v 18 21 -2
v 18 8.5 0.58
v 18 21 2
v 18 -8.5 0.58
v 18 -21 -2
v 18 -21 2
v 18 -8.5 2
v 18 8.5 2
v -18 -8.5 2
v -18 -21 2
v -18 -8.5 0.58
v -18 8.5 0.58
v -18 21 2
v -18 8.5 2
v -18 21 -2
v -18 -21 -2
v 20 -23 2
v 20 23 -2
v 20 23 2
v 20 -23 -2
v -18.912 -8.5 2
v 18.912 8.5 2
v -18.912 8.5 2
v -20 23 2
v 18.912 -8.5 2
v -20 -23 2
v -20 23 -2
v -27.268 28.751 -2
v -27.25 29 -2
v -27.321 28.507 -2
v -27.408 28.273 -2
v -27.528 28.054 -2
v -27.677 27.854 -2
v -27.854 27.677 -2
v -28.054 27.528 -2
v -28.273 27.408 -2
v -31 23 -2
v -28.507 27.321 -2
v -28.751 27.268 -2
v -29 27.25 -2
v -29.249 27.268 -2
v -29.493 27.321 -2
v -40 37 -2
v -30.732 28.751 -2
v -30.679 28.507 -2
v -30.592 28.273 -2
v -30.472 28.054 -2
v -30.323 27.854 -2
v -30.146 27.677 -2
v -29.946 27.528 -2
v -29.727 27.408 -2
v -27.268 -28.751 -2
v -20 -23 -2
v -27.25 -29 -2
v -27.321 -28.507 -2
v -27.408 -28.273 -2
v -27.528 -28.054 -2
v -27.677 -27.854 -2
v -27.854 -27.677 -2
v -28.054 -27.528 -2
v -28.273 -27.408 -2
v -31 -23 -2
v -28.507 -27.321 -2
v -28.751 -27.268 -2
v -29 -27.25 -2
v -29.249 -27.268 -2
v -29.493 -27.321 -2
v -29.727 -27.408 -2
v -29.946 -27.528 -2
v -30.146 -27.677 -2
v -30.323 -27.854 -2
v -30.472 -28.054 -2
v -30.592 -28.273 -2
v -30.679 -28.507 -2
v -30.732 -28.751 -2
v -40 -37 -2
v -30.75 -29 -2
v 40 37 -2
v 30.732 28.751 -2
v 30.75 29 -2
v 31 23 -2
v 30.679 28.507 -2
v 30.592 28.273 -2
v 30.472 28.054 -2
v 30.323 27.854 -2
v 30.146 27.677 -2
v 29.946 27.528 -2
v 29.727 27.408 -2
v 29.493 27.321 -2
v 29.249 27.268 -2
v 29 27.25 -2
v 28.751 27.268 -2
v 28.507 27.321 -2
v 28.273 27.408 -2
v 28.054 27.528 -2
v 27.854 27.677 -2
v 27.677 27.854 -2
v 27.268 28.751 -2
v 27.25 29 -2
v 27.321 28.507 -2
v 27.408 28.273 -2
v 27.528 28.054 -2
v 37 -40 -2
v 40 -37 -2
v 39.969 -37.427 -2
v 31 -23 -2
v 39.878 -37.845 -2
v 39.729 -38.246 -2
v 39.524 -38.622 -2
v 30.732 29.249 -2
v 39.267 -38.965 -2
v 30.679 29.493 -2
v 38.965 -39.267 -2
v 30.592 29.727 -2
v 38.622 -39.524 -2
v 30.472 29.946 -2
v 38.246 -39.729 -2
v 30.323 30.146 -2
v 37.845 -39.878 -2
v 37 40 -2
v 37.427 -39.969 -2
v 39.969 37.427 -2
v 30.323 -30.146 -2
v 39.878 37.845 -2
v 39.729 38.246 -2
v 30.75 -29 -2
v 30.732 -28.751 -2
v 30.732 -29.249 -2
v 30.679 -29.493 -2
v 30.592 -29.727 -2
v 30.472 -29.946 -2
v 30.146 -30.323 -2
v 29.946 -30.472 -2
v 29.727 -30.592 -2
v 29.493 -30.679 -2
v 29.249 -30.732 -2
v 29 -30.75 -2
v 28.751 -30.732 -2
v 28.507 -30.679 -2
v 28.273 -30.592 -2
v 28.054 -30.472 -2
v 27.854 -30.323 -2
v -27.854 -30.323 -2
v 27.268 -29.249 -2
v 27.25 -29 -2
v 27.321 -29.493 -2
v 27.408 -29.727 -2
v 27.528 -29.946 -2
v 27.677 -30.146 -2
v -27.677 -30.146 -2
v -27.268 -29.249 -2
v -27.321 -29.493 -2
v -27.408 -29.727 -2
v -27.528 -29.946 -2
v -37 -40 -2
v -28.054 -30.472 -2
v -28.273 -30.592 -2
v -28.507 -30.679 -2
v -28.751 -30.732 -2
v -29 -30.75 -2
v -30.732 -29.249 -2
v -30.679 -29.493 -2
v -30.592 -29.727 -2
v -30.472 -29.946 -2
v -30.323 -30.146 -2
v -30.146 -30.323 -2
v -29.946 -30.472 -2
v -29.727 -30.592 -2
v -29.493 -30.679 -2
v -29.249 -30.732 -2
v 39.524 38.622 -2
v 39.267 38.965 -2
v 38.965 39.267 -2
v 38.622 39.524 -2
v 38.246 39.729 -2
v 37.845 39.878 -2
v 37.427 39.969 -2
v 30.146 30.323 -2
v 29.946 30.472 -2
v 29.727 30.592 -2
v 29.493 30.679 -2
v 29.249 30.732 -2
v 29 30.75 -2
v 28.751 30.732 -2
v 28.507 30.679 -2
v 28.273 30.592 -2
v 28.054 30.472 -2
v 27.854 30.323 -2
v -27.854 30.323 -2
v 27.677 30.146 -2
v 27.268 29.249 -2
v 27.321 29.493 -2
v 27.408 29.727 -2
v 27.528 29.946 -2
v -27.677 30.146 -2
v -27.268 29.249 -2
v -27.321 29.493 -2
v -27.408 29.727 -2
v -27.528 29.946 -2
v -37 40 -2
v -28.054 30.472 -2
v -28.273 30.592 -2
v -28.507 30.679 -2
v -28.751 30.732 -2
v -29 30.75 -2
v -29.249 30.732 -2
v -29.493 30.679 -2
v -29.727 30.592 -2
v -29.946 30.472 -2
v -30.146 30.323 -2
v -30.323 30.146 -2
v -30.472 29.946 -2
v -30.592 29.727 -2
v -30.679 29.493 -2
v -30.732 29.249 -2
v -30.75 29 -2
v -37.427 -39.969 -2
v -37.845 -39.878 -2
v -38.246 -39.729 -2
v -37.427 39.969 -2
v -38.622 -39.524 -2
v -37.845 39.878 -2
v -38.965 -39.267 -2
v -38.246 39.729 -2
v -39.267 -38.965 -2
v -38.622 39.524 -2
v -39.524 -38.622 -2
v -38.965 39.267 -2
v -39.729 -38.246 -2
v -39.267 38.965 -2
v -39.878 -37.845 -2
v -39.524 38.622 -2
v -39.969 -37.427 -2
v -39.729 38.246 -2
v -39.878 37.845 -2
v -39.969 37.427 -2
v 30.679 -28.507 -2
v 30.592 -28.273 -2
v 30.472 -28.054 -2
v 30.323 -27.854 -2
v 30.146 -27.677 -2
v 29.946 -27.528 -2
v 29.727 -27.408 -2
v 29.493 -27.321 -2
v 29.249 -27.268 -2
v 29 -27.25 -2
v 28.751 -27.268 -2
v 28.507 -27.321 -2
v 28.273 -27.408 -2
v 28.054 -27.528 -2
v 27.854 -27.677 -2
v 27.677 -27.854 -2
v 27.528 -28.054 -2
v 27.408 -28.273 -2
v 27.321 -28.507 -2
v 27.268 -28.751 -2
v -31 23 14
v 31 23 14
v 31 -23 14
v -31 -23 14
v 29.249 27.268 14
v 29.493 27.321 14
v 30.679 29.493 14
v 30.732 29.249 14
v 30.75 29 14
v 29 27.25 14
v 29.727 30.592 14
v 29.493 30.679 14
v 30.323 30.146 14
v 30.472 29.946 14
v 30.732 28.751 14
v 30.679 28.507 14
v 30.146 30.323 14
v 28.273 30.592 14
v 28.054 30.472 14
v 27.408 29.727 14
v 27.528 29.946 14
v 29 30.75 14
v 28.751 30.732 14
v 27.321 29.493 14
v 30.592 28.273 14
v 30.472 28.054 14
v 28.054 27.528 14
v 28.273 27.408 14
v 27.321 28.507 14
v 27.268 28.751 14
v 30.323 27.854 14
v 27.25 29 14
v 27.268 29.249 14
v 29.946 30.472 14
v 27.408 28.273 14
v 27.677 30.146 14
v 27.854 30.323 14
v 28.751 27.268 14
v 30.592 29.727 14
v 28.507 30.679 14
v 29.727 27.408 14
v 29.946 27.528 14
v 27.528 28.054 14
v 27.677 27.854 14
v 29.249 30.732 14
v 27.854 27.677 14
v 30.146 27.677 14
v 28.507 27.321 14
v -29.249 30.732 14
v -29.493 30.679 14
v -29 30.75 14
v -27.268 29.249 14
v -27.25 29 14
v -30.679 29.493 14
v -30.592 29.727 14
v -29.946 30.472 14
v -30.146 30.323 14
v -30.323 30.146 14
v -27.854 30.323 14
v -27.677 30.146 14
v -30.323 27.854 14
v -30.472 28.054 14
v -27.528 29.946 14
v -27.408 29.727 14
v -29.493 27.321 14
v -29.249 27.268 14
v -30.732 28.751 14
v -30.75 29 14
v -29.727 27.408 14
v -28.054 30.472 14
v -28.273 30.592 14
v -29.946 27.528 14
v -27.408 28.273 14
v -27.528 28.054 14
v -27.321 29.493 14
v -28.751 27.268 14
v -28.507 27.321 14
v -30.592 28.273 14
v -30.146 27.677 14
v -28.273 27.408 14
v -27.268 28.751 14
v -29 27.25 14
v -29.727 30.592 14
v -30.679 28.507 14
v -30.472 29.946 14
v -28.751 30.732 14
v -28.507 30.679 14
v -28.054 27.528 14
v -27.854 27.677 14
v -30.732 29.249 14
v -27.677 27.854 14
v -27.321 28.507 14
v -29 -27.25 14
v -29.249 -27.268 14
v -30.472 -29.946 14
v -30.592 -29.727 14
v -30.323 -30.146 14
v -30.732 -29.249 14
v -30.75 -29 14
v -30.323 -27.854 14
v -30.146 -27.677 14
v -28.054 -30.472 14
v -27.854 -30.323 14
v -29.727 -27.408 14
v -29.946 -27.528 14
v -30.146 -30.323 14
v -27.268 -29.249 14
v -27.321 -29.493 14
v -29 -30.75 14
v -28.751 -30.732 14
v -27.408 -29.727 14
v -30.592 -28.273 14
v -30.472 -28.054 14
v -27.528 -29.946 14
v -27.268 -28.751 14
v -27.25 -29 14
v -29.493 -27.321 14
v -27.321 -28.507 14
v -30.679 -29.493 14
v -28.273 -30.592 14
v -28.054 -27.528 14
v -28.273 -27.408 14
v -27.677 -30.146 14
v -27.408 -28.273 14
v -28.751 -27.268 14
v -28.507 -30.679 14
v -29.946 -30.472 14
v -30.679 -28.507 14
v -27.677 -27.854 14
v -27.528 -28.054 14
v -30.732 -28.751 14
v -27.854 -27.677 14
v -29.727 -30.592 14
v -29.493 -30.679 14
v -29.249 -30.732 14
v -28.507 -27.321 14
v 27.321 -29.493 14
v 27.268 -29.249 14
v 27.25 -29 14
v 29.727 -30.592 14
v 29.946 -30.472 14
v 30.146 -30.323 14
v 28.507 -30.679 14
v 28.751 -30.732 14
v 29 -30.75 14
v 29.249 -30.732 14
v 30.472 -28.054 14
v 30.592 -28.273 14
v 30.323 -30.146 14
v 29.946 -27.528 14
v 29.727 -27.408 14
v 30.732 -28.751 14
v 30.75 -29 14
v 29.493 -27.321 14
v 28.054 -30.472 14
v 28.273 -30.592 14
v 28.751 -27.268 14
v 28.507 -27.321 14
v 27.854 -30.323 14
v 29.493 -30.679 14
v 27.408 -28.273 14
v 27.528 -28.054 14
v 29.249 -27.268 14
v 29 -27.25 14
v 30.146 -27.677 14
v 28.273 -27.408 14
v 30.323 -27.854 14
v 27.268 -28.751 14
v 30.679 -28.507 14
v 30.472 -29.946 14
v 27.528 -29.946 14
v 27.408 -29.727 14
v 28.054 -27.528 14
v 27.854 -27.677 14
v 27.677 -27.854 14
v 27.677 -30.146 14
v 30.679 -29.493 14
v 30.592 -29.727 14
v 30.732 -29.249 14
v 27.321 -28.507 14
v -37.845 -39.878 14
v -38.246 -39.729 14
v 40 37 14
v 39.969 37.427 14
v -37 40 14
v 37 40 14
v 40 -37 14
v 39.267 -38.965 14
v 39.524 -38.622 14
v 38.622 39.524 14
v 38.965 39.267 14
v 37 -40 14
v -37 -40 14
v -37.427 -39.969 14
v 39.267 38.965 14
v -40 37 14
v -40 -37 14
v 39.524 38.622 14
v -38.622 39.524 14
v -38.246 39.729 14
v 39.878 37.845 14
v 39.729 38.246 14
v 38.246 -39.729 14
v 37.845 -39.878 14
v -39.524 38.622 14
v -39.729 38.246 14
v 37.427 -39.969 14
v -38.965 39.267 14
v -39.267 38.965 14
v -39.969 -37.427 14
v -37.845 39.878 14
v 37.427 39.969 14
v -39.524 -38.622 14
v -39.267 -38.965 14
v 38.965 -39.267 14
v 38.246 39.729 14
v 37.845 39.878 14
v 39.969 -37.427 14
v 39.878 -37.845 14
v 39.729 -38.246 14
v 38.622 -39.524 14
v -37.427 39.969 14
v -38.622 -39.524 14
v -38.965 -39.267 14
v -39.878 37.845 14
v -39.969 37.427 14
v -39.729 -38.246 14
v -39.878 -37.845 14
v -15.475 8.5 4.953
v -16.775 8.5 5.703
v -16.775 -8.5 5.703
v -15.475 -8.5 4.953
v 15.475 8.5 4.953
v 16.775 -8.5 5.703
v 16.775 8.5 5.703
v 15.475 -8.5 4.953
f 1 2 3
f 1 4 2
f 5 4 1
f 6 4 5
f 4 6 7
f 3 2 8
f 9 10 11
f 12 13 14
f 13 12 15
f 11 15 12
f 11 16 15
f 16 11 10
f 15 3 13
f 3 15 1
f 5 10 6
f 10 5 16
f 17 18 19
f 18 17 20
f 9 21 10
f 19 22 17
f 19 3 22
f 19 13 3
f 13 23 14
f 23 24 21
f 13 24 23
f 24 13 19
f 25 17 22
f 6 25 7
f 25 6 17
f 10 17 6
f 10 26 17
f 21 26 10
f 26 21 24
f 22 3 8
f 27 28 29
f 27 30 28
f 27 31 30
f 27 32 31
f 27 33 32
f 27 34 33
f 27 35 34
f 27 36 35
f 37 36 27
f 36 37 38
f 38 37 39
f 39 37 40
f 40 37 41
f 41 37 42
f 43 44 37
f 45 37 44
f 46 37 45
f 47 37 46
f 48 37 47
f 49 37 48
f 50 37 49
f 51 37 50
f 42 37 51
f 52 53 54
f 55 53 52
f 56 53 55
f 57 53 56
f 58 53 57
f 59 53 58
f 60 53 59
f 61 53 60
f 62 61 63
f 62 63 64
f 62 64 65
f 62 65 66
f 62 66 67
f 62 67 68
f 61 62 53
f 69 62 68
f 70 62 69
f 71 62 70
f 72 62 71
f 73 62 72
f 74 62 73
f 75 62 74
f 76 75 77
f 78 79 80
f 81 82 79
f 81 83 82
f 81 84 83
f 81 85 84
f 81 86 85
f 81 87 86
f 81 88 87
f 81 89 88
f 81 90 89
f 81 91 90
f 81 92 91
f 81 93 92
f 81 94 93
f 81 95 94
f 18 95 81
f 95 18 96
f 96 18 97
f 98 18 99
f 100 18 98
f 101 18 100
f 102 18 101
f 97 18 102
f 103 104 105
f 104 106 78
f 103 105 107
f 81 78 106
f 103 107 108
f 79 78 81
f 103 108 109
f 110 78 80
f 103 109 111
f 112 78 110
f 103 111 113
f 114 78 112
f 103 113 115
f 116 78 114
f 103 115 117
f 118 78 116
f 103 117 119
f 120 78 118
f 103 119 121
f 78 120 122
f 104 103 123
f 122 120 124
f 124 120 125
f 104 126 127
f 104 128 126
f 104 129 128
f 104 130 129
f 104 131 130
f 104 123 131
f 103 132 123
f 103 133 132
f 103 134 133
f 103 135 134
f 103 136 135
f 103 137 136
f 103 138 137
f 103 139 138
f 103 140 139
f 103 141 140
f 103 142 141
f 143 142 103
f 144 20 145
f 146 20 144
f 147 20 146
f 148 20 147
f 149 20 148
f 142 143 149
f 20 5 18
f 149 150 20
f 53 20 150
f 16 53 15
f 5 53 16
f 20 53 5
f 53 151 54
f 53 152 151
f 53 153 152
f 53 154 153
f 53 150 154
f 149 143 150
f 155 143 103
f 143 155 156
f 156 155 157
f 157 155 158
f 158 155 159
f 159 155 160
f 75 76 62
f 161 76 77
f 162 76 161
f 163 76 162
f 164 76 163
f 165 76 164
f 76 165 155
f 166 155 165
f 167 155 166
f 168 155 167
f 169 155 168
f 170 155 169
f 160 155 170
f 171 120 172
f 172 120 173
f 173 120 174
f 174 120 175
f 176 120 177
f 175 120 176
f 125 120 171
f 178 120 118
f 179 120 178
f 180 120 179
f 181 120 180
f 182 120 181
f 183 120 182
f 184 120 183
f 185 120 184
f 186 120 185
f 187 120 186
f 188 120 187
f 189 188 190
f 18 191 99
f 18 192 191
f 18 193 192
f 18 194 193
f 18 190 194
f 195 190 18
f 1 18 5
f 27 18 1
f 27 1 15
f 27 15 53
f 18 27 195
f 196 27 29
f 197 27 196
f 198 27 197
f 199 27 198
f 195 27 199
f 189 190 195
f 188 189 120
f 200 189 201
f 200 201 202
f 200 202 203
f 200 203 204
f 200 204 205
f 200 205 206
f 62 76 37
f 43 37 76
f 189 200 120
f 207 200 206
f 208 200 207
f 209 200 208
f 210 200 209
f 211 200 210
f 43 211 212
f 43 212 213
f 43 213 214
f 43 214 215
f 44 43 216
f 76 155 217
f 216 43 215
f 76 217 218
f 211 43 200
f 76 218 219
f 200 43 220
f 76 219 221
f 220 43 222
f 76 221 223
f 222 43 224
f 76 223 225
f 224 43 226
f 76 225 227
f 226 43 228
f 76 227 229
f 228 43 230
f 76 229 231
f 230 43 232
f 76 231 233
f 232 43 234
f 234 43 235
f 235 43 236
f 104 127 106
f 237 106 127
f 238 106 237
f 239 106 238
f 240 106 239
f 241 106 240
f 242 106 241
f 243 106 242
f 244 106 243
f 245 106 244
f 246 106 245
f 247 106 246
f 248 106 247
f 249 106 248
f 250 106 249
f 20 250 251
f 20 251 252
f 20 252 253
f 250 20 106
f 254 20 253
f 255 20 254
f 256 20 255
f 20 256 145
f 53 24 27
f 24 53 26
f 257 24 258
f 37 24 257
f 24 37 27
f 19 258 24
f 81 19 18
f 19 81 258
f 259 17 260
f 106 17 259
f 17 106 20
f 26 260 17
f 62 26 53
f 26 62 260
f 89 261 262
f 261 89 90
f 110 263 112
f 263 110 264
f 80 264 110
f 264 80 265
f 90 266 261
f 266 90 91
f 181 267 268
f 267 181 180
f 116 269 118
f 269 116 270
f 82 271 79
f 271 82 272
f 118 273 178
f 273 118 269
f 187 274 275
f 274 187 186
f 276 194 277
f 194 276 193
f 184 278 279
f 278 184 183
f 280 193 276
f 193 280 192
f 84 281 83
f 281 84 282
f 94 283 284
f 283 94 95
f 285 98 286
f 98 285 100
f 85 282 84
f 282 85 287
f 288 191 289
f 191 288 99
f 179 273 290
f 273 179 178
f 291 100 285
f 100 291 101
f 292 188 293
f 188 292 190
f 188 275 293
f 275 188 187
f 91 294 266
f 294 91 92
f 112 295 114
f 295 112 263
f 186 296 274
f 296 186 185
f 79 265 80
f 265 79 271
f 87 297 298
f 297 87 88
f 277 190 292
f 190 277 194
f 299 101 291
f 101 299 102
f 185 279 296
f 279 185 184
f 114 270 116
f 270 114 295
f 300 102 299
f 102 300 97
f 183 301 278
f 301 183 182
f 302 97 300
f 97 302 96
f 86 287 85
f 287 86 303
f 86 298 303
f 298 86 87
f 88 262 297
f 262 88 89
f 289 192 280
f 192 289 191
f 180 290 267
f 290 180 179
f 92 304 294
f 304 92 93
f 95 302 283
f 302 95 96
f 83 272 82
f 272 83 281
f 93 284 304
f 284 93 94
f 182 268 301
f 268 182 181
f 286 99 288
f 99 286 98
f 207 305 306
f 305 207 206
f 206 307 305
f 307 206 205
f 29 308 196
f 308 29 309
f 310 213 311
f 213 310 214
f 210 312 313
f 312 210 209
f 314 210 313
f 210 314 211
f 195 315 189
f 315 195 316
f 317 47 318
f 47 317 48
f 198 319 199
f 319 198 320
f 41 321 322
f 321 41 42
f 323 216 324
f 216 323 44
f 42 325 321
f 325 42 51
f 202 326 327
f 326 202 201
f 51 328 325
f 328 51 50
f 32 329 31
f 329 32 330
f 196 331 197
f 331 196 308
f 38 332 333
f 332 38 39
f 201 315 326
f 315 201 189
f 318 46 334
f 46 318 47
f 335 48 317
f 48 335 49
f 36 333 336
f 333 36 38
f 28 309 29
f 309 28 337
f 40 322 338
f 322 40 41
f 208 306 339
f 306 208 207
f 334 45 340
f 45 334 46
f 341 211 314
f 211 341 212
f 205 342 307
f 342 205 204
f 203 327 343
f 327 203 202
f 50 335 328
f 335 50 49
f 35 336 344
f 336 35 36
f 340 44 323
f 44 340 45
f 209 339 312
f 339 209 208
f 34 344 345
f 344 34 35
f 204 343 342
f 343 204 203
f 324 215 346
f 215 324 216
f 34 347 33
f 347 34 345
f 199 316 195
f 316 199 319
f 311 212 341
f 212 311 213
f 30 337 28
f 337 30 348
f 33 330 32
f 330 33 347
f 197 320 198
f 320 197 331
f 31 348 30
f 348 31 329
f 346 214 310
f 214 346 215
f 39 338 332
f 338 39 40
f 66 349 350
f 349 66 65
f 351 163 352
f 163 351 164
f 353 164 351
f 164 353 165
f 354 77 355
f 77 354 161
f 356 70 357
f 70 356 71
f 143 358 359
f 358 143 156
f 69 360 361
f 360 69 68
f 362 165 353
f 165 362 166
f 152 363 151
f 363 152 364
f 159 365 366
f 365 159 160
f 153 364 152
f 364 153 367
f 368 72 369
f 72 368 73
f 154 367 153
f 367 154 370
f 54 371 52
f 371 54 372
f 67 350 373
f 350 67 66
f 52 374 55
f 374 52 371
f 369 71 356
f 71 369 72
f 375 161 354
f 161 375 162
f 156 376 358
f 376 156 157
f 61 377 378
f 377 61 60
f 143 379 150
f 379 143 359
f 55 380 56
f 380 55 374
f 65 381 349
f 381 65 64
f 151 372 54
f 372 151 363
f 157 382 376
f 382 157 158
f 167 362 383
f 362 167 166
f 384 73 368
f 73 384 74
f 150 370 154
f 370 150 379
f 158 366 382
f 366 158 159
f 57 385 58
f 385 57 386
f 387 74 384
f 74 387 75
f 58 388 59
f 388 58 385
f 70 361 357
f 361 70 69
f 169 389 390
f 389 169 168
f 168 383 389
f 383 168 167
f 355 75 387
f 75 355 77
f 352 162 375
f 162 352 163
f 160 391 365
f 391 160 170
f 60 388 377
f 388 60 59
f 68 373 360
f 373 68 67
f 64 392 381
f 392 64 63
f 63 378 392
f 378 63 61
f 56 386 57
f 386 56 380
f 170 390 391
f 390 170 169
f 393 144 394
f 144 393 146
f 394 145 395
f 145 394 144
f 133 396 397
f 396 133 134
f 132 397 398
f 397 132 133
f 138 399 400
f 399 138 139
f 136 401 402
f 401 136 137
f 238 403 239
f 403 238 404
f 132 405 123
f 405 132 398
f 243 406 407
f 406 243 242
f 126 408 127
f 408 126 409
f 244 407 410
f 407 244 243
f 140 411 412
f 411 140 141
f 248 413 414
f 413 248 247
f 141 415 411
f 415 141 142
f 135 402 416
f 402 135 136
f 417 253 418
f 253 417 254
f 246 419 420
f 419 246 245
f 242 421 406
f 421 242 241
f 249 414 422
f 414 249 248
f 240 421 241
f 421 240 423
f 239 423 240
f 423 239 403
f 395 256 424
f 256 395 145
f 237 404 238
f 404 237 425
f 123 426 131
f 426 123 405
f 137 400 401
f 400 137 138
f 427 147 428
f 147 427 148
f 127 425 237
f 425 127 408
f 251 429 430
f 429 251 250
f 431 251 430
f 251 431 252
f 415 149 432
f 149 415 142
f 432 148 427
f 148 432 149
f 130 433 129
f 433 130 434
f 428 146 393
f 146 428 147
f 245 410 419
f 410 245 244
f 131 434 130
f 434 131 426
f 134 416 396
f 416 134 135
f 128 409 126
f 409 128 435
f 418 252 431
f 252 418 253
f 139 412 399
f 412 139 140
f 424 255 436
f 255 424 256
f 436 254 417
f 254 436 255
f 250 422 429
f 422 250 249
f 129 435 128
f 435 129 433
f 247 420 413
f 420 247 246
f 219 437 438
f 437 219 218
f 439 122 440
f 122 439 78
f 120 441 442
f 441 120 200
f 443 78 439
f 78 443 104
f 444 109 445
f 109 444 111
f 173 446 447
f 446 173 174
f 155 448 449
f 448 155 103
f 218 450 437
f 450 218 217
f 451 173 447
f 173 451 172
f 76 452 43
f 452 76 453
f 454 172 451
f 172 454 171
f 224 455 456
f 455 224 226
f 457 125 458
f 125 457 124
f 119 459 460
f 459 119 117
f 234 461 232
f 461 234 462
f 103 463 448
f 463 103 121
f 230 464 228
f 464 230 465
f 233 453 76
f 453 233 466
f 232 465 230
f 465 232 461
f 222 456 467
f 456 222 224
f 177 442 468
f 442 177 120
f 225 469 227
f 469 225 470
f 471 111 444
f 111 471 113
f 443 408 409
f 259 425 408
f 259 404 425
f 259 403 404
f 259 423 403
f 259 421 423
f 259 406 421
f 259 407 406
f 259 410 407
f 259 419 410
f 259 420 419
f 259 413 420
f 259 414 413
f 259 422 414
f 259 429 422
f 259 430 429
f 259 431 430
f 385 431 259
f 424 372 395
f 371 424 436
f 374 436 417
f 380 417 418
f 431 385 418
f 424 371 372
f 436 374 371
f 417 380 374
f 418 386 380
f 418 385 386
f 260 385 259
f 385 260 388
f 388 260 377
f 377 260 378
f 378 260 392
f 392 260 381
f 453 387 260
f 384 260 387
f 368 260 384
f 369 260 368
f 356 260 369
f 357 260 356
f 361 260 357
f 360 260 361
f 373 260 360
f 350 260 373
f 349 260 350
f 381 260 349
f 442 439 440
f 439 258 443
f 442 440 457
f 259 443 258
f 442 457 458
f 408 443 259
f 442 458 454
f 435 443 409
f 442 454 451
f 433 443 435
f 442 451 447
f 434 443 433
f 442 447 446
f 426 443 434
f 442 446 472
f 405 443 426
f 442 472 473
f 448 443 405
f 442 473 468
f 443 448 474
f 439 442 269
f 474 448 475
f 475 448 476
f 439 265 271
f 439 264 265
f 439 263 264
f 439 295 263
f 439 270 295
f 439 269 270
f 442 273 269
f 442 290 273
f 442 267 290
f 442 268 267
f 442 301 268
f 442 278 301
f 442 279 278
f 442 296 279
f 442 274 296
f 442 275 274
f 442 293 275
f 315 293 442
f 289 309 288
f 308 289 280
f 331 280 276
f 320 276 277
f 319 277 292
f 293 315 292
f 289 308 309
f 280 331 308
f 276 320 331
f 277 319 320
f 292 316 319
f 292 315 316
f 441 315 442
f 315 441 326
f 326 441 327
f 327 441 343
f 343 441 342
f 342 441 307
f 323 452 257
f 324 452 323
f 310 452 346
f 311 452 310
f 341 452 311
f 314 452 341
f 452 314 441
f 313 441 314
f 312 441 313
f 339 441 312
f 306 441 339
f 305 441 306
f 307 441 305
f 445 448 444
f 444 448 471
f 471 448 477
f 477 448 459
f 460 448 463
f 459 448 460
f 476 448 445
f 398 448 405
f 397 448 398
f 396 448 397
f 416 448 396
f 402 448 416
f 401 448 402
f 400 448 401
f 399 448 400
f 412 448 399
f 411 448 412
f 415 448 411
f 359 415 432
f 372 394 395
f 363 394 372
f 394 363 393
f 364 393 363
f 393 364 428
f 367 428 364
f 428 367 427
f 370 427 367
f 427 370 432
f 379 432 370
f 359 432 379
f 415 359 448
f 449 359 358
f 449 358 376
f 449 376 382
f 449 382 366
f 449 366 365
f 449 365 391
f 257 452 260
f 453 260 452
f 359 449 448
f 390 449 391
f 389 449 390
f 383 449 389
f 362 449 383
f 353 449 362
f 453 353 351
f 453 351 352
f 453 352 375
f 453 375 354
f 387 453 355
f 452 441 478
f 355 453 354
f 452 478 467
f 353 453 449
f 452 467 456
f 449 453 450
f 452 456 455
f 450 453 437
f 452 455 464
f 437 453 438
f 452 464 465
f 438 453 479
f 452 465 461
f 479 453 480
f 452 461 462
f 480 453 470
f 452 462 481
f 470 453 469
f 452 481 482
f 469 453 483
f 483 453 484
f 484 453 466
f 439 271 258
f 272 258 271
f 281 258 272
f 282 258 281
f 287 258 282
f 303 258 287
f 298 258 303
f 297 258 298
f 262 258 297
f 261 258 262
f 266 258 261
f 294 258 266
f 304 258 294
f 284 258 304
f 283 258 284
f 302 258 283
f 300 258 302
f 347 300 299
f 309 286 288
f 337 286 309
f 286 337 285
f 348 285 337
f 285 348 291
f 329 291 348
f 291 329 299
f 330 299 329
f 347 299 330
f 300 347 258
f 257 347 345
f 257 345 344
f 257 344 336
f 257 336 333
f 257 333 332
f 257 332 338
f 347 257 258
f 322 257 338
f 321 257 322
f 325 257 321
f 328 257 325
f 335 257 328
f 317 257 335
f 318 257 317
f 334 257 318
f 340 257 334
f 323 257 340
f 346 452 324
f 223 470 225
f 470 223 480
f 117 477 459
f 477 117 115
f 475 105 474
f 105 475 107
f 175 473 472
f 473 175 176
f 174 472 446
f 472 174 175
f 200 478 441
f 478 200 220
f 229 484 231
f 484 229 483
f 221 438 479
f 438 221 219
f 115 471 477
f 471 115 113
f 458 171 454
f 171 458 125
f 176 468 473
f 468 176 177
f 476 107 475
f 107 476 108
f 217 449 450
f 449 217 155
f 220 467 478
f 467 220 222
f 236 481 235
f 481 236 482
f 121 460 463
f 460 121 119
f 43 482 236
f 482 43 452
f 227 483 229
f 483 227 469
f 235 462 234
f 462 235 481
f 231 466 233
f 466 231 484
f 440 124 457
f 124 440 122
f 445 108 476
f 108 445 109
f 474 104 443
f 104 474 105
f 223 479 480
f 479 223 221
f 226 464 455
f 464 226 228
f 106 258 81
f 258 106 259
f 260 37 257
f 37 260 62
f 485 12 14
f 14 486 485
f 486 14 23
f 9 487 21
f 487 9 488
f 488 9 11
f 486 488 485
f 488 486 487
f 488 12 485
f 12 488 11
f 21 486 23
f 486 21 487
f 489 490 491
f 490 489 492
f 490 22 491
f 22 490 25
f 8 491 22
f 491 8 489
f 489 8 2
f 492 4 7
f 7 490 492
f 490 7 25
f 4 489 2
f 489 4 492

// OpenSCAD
$fn = 44;


// switch base
module switch_base(){
	translate([0,0,-1])
	cube([36,42,4.01],center = true);
	translate([0,0,(11/2)+1])
	cube([36,24,11],center = true);
}

difference(){
	cube([40,46,4], center=true);
	translate([0,0,1])
	switch_base();
}

//color("red") import("Cotech.stl");

module clip(){
	color("blue")
	translate([-17.7,0,2.6])
	rotate([0,30,0])
	cube([1.5,17,6.3], center=true);
}
translate([0,0,0])
clip();
rotate([0,0,180])
clip();


translate([0,0,(16/2)-2])
difference(){
	minkowski(){
		cube([74,74,15],center=true);
		cylinder(h=1,r=3,center=true);
	}
	cube([62,46,16.01],center=true);
	for(i = [0:90:360]){
		rotate([0,0,i])
		translate([35.5-6.5,35.5-6.5,-(16/2)-2])
		cylinder(h=19,r=1.75);
	}
}

//color("red") cube([80,80,3],center=true);
